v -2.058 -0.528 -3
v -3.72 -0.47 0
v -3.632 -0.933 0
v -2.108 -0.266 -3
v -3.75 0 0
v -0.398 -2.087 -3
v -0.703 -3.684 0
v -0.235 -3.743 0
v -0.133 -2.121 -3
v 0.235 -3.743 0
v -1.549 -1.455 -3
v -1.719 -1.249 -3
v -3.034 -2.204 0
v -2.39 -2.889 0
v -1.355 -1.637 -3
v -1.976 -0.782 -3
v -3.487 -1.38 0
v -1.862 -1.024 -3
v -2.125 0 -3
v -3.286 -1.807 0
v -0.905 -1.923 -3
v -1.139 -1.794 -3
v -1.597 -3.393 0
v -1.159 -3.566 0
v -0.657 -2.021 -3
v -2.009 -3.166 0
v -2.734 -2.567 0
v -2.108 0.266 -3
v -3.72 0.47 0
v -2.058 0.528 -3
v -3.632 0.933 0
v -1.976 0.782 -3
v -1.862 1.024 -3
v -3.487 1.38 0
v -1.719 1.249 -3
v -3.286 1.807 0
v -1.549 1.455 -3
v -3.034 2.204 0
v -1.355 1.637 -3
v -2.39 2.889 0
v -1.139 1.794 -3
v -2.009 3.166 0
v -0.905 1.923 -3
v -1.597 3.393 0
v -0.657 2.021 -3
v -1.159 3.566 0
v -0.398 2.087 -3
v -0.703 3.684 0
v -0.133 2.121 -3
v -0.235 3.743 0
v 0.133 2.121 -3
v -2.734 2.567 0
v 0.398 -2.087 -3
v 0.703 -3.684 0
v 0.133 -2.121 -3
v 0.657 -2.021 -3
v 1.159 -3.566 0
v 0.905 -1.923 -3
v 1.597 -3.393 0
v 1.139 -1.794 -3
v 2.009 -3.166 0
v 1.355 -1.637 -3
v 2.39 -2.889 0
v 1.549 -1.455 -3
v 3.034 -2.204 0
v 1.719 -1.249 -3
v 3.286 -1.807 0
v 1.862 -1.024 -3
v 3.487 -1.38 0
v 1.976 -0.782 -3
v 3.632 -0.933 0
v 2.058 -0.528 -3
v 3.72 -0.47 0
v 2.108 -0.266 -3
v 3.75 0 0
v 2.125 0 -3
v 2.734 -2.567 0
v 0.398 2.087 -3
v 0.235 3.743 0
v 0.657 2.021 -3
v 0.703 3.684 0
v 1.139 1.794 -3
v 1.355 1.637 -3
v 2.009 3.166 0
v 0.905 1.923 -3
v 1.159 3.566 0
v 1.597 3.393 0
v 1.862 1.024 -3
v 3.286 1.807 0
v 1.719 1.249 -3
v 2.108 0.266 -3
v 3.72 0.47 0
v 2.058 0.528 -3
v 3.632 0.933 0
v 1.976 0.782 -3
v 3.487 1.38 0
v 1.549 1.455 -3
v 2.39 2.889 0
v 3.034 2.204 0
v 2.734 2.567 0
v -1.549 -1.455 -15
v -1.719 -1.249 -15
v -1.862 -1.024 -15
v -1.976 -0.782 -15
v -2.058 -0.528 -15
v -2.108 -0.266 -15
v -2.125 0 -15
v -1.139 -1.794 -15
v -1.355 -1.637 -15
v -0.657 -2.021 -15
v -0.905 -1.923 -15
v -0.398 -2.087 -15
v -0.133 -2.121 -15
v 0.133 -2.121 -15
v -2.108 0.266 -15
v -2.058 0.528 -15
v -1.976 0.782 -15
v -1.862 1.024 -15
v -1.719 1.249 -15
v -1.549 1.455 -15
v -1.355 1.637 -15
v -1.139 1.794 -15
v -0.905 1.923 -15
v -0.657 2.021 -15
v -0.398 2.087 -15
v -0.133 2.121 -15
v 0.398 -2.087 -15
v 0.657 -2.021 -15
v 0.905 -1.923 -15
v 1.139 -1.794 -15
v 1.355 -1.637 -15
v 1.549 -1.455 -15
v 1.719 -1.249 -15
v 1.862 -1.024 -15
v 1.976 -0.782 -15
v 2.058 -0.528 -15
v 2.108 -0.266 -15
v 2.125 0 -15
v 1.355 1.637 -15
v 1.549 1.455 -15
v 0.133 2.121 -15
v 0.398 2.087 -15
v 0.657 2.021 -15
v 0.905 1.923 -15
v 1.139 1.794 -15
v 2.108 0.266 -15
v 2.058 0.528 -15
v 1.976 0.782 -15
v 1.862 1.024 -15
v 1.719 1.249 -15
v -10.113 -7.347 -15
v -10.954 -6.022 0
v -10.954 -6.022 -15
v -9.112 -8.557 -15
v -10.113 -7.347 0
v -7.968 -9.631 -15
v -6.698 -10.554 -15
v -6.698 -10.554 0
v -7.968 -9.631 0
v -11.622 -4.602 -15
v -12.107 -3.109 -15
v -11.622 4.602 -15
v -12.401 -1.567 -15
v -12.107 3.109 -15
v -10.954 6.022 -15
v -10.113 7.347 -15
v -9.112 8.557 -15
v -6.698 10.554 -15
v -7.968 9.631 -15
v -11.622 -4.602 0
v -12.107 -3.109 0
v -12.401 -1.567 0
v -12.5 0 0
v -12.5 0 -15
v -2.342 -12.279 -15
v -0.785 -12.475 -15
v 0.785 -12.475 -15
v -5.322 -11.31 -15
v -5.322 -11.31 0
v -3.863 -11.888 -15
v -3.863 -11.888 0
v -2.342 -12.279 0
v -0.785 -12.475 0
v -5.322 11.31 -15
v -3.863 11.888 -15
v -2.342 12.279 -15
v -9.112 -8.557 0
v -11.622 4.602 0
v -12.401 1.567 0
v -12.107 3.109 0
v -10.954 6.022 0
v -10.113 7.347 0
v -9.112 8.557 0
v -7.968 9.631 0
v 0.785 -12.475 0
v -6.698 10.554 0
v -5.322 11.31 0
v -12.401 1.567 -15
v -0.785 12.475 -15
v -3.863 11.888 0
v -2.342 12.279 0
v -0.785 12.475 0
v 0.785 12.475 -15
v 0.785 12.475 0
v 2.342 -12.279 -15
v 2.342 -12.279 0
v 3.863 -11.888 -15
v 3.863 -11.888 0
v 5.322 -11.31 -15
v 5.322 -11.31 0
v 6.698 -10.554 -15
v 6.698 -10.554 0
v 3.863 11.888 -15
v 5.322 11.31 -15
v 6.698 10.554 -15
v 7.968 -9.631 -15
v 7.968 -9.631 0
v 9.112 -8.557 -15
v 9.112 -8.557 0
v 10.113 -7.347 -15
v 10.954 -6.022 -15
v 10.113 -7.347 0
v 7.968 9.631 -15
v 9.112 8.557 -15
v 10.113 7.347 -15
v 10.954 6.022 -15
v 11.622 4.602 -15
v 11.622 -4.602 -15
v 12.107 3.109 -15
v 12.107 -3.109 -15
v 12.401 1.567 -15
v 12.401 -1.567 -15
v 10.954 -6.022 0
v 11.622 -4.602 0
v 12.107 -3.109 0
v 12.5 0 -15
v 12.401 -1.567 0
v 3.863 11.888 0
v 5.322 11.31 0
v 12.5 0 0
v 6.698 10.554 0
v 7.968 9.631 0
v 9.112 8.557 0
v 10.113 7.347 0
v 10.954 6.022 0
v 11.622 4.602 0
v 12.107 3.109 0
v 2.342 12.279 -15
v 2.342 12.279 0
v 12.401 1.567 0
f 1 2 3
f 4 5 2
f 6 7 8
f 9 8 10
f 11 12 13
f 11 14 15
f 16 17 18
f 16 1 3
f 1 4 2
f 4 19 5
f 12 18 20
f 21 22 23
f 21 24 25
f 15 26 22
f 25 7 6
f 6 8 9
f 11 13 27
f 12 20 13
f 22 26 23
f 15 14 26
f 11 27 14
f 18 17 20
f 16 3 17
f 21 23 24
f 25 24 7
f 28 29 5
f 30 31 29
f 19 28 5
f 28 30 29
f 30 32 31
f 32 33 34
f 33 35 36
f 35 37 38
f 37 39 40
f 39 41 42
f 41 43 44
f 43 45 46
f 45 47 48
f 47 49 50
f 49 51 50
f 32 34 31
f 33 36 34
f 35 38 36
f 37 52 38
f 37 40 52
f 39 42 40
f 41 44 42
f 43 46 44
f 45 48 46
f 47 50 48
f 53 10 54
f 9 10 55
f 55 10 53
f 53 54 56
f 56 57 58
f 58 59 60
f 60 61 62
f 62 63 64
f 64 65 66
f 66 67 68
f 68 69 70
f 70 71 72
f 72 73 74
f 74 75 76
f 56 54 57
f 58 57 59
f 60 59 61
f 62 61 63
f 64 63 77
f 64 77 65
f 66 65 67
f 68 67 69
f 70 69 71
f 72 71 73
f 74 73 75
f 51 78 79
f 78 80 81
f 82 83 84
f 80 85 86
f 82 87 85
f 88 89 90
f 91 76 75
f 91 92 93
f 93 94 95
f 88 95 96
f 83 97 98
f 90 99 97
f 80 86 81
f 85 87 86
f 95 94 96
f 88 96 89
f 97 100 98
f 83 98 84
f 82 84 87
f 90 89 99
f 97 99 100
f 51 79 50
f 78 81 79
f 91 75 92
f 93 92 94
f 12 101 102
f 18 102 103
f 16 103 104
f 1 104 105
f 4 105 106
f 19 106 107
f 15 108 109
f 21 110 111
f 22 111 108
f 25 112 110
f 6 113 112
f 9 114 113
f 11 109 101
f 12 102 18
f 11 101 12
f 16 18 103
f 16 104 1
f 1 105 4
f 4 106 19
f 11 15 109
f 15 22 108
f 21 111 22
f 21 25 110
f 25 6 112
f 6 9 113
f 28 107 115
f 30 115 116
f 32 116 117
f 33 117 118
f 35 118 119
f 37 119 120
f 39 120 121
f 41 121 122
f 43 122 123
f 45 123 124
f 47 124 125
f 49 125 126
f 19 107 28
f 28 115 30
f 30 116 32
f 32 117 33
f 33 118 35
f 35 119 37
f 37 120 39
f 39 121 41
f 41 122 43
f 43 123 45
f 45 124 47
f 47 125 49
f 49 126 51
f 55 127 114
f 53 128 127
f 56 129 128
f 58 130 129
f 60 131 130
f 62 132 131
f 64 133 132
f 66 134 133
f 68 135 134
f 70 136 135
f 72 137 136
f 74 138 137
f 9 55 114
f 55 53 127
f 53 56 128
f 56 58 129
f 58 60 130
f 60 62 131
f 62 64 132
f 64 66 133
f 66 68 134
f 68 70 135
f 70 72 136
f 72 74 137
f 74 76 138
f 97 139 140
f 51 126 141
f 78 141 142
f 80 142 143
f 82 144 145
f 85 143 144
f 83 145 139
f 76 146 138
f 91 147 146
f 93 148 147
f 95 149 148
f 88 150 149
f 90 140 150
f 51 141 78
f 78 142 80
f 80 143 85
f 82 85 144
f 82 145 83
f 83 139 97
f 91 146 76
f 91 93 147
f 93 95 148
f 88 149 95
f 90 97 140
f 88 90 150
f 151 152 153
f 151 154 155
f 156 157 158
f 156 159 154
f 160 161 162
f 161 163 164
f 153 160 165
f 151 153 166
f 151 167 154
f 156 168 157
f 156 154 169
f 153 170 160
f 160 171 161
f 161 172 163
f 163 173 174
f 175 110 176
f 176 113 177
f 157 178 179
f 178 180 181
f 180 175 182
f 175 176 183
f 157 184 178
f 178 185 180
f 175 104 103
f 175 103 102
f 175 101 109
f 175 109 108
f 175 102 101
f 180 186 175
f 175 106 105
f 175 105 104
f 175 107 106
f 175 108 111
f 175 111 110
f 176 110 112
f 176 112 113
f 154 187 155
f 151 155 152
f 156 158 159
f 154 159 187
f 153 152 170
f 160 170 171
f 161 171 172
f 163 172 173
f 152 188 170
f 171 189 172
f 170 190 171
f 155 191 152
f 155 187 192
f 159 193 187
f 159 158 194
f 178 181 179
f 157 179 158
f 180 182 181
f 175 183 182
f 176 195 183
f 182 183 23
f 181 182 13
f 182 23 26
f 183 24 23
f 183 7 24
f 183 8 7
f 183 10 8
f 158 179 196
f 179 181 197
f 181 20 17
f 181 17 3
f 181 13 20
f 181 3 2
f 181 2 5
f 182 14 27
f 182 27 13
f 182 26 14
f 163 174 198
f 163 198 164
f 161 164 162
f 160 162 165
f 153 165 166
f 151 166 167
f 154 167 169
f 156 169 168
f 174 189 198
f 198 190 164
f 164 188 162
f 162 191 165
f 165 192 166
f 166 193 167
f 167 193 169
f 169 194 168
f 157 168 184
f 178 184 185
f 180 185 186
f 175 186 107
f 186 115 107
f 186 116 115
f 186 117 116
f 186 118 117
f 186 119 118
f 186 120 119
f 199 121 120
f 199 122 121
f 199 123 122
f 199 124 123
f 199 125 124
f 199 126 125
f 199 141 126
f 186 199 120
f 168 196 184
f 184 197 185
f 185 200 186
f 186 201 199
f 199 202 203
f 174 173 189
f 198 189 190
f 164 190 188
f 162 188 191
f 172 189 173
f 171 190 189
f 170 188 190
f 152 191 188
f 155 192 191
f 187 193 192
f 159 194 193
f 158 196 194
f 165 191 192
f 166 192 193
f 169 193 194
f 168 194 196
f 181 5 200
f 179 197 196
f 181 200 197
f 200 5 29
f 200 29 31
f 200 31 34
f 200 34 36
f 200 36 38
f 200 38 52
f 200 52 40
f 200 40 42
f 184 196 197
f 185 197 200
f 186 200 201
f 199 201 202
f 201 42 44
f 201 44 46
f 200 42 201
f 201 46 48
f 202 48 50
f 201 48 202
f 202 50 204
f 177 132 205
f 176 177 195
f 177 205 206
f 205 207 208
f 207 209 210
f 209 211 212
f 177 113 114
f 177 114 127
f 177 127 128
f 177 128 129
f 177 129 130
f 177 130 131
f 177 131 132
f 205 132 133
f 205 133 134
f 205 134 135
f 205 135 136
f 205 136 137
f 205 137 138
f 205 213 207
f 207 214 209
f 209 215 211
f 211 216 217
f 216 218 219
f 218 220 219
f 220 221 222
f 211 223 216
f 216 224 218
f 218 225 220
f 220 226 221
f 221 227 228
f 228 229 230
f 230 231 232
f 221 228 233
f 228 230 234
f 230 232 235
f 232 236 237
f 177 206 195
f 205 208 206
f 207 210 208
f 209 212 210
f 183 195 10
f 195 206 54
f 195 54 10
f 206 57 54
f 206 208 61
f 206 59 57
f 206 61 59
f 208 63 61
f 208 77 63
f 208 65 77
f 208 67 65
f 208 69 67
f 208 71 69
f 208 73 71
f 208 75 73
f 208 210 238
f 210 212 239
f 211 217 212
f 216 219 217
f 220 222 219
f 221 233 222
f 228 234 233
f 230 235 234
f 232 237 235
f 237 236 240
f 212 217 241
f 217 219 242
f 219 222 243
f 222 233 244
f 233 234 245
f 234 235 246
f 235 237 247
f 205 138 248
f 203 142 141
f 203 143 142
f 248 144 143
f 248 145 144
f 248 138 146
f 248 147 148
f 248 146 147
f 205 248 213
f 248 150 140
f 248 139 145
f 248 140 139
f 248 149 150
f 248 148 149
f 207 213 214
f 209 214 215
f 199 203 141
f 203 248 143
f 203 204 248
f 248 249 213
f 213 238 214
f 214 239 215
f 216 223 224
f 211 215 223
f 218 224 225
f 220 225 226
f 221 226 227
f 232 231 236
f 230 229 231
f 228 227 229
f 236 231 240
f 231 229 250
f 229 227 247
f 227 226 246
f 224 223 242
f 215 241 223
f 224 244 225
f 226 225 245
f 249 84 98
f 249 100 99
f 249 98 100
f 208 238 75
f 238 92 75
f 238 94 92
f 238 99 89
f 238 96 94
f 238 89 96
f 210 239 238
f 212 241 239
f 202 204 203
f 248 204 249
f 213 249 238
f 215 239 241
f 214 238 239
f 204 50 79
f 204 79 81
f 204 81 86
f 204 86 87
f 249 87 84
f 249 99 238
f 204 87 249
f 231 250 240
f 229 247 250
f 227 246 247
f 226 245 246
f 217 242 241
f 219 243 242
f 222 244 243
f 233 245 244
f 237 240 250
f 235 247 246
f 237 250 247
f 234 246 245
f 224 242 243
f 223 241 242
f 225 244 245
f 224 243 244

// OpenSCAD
$fn = 50;


difference() {
	union() {
		translate(v = [0, 0, -15.0000000000]) {
			cylinder(h = 15, r = 12.5000000000);
		}
	}
	union() {
		translate(v = [0, 0, 0]) {
			rotate(a = [0, 0, 0]) {
				difference() {
					union() {
						translate(v = [0, 0, -18.0000000000]) {
							cylinder(h = 18, r = 2.0000000000);
						}
						translate(v = [0, 0, -3]) {
							cylinder(h = 3, r1 = 2.1250000000, r2 = 3.7500000000);
						}
						translate(v = [0, 0, -18.0000000000]) {
							cylinder(h = 18, r = 2.1250000000);
						}
						translate(v = [0, 0, -18.0000000000]) {
							cylinder(h = 18, r = 2.0000000000);
						}
					}
					union();
				}
			}
		}
	}
}
